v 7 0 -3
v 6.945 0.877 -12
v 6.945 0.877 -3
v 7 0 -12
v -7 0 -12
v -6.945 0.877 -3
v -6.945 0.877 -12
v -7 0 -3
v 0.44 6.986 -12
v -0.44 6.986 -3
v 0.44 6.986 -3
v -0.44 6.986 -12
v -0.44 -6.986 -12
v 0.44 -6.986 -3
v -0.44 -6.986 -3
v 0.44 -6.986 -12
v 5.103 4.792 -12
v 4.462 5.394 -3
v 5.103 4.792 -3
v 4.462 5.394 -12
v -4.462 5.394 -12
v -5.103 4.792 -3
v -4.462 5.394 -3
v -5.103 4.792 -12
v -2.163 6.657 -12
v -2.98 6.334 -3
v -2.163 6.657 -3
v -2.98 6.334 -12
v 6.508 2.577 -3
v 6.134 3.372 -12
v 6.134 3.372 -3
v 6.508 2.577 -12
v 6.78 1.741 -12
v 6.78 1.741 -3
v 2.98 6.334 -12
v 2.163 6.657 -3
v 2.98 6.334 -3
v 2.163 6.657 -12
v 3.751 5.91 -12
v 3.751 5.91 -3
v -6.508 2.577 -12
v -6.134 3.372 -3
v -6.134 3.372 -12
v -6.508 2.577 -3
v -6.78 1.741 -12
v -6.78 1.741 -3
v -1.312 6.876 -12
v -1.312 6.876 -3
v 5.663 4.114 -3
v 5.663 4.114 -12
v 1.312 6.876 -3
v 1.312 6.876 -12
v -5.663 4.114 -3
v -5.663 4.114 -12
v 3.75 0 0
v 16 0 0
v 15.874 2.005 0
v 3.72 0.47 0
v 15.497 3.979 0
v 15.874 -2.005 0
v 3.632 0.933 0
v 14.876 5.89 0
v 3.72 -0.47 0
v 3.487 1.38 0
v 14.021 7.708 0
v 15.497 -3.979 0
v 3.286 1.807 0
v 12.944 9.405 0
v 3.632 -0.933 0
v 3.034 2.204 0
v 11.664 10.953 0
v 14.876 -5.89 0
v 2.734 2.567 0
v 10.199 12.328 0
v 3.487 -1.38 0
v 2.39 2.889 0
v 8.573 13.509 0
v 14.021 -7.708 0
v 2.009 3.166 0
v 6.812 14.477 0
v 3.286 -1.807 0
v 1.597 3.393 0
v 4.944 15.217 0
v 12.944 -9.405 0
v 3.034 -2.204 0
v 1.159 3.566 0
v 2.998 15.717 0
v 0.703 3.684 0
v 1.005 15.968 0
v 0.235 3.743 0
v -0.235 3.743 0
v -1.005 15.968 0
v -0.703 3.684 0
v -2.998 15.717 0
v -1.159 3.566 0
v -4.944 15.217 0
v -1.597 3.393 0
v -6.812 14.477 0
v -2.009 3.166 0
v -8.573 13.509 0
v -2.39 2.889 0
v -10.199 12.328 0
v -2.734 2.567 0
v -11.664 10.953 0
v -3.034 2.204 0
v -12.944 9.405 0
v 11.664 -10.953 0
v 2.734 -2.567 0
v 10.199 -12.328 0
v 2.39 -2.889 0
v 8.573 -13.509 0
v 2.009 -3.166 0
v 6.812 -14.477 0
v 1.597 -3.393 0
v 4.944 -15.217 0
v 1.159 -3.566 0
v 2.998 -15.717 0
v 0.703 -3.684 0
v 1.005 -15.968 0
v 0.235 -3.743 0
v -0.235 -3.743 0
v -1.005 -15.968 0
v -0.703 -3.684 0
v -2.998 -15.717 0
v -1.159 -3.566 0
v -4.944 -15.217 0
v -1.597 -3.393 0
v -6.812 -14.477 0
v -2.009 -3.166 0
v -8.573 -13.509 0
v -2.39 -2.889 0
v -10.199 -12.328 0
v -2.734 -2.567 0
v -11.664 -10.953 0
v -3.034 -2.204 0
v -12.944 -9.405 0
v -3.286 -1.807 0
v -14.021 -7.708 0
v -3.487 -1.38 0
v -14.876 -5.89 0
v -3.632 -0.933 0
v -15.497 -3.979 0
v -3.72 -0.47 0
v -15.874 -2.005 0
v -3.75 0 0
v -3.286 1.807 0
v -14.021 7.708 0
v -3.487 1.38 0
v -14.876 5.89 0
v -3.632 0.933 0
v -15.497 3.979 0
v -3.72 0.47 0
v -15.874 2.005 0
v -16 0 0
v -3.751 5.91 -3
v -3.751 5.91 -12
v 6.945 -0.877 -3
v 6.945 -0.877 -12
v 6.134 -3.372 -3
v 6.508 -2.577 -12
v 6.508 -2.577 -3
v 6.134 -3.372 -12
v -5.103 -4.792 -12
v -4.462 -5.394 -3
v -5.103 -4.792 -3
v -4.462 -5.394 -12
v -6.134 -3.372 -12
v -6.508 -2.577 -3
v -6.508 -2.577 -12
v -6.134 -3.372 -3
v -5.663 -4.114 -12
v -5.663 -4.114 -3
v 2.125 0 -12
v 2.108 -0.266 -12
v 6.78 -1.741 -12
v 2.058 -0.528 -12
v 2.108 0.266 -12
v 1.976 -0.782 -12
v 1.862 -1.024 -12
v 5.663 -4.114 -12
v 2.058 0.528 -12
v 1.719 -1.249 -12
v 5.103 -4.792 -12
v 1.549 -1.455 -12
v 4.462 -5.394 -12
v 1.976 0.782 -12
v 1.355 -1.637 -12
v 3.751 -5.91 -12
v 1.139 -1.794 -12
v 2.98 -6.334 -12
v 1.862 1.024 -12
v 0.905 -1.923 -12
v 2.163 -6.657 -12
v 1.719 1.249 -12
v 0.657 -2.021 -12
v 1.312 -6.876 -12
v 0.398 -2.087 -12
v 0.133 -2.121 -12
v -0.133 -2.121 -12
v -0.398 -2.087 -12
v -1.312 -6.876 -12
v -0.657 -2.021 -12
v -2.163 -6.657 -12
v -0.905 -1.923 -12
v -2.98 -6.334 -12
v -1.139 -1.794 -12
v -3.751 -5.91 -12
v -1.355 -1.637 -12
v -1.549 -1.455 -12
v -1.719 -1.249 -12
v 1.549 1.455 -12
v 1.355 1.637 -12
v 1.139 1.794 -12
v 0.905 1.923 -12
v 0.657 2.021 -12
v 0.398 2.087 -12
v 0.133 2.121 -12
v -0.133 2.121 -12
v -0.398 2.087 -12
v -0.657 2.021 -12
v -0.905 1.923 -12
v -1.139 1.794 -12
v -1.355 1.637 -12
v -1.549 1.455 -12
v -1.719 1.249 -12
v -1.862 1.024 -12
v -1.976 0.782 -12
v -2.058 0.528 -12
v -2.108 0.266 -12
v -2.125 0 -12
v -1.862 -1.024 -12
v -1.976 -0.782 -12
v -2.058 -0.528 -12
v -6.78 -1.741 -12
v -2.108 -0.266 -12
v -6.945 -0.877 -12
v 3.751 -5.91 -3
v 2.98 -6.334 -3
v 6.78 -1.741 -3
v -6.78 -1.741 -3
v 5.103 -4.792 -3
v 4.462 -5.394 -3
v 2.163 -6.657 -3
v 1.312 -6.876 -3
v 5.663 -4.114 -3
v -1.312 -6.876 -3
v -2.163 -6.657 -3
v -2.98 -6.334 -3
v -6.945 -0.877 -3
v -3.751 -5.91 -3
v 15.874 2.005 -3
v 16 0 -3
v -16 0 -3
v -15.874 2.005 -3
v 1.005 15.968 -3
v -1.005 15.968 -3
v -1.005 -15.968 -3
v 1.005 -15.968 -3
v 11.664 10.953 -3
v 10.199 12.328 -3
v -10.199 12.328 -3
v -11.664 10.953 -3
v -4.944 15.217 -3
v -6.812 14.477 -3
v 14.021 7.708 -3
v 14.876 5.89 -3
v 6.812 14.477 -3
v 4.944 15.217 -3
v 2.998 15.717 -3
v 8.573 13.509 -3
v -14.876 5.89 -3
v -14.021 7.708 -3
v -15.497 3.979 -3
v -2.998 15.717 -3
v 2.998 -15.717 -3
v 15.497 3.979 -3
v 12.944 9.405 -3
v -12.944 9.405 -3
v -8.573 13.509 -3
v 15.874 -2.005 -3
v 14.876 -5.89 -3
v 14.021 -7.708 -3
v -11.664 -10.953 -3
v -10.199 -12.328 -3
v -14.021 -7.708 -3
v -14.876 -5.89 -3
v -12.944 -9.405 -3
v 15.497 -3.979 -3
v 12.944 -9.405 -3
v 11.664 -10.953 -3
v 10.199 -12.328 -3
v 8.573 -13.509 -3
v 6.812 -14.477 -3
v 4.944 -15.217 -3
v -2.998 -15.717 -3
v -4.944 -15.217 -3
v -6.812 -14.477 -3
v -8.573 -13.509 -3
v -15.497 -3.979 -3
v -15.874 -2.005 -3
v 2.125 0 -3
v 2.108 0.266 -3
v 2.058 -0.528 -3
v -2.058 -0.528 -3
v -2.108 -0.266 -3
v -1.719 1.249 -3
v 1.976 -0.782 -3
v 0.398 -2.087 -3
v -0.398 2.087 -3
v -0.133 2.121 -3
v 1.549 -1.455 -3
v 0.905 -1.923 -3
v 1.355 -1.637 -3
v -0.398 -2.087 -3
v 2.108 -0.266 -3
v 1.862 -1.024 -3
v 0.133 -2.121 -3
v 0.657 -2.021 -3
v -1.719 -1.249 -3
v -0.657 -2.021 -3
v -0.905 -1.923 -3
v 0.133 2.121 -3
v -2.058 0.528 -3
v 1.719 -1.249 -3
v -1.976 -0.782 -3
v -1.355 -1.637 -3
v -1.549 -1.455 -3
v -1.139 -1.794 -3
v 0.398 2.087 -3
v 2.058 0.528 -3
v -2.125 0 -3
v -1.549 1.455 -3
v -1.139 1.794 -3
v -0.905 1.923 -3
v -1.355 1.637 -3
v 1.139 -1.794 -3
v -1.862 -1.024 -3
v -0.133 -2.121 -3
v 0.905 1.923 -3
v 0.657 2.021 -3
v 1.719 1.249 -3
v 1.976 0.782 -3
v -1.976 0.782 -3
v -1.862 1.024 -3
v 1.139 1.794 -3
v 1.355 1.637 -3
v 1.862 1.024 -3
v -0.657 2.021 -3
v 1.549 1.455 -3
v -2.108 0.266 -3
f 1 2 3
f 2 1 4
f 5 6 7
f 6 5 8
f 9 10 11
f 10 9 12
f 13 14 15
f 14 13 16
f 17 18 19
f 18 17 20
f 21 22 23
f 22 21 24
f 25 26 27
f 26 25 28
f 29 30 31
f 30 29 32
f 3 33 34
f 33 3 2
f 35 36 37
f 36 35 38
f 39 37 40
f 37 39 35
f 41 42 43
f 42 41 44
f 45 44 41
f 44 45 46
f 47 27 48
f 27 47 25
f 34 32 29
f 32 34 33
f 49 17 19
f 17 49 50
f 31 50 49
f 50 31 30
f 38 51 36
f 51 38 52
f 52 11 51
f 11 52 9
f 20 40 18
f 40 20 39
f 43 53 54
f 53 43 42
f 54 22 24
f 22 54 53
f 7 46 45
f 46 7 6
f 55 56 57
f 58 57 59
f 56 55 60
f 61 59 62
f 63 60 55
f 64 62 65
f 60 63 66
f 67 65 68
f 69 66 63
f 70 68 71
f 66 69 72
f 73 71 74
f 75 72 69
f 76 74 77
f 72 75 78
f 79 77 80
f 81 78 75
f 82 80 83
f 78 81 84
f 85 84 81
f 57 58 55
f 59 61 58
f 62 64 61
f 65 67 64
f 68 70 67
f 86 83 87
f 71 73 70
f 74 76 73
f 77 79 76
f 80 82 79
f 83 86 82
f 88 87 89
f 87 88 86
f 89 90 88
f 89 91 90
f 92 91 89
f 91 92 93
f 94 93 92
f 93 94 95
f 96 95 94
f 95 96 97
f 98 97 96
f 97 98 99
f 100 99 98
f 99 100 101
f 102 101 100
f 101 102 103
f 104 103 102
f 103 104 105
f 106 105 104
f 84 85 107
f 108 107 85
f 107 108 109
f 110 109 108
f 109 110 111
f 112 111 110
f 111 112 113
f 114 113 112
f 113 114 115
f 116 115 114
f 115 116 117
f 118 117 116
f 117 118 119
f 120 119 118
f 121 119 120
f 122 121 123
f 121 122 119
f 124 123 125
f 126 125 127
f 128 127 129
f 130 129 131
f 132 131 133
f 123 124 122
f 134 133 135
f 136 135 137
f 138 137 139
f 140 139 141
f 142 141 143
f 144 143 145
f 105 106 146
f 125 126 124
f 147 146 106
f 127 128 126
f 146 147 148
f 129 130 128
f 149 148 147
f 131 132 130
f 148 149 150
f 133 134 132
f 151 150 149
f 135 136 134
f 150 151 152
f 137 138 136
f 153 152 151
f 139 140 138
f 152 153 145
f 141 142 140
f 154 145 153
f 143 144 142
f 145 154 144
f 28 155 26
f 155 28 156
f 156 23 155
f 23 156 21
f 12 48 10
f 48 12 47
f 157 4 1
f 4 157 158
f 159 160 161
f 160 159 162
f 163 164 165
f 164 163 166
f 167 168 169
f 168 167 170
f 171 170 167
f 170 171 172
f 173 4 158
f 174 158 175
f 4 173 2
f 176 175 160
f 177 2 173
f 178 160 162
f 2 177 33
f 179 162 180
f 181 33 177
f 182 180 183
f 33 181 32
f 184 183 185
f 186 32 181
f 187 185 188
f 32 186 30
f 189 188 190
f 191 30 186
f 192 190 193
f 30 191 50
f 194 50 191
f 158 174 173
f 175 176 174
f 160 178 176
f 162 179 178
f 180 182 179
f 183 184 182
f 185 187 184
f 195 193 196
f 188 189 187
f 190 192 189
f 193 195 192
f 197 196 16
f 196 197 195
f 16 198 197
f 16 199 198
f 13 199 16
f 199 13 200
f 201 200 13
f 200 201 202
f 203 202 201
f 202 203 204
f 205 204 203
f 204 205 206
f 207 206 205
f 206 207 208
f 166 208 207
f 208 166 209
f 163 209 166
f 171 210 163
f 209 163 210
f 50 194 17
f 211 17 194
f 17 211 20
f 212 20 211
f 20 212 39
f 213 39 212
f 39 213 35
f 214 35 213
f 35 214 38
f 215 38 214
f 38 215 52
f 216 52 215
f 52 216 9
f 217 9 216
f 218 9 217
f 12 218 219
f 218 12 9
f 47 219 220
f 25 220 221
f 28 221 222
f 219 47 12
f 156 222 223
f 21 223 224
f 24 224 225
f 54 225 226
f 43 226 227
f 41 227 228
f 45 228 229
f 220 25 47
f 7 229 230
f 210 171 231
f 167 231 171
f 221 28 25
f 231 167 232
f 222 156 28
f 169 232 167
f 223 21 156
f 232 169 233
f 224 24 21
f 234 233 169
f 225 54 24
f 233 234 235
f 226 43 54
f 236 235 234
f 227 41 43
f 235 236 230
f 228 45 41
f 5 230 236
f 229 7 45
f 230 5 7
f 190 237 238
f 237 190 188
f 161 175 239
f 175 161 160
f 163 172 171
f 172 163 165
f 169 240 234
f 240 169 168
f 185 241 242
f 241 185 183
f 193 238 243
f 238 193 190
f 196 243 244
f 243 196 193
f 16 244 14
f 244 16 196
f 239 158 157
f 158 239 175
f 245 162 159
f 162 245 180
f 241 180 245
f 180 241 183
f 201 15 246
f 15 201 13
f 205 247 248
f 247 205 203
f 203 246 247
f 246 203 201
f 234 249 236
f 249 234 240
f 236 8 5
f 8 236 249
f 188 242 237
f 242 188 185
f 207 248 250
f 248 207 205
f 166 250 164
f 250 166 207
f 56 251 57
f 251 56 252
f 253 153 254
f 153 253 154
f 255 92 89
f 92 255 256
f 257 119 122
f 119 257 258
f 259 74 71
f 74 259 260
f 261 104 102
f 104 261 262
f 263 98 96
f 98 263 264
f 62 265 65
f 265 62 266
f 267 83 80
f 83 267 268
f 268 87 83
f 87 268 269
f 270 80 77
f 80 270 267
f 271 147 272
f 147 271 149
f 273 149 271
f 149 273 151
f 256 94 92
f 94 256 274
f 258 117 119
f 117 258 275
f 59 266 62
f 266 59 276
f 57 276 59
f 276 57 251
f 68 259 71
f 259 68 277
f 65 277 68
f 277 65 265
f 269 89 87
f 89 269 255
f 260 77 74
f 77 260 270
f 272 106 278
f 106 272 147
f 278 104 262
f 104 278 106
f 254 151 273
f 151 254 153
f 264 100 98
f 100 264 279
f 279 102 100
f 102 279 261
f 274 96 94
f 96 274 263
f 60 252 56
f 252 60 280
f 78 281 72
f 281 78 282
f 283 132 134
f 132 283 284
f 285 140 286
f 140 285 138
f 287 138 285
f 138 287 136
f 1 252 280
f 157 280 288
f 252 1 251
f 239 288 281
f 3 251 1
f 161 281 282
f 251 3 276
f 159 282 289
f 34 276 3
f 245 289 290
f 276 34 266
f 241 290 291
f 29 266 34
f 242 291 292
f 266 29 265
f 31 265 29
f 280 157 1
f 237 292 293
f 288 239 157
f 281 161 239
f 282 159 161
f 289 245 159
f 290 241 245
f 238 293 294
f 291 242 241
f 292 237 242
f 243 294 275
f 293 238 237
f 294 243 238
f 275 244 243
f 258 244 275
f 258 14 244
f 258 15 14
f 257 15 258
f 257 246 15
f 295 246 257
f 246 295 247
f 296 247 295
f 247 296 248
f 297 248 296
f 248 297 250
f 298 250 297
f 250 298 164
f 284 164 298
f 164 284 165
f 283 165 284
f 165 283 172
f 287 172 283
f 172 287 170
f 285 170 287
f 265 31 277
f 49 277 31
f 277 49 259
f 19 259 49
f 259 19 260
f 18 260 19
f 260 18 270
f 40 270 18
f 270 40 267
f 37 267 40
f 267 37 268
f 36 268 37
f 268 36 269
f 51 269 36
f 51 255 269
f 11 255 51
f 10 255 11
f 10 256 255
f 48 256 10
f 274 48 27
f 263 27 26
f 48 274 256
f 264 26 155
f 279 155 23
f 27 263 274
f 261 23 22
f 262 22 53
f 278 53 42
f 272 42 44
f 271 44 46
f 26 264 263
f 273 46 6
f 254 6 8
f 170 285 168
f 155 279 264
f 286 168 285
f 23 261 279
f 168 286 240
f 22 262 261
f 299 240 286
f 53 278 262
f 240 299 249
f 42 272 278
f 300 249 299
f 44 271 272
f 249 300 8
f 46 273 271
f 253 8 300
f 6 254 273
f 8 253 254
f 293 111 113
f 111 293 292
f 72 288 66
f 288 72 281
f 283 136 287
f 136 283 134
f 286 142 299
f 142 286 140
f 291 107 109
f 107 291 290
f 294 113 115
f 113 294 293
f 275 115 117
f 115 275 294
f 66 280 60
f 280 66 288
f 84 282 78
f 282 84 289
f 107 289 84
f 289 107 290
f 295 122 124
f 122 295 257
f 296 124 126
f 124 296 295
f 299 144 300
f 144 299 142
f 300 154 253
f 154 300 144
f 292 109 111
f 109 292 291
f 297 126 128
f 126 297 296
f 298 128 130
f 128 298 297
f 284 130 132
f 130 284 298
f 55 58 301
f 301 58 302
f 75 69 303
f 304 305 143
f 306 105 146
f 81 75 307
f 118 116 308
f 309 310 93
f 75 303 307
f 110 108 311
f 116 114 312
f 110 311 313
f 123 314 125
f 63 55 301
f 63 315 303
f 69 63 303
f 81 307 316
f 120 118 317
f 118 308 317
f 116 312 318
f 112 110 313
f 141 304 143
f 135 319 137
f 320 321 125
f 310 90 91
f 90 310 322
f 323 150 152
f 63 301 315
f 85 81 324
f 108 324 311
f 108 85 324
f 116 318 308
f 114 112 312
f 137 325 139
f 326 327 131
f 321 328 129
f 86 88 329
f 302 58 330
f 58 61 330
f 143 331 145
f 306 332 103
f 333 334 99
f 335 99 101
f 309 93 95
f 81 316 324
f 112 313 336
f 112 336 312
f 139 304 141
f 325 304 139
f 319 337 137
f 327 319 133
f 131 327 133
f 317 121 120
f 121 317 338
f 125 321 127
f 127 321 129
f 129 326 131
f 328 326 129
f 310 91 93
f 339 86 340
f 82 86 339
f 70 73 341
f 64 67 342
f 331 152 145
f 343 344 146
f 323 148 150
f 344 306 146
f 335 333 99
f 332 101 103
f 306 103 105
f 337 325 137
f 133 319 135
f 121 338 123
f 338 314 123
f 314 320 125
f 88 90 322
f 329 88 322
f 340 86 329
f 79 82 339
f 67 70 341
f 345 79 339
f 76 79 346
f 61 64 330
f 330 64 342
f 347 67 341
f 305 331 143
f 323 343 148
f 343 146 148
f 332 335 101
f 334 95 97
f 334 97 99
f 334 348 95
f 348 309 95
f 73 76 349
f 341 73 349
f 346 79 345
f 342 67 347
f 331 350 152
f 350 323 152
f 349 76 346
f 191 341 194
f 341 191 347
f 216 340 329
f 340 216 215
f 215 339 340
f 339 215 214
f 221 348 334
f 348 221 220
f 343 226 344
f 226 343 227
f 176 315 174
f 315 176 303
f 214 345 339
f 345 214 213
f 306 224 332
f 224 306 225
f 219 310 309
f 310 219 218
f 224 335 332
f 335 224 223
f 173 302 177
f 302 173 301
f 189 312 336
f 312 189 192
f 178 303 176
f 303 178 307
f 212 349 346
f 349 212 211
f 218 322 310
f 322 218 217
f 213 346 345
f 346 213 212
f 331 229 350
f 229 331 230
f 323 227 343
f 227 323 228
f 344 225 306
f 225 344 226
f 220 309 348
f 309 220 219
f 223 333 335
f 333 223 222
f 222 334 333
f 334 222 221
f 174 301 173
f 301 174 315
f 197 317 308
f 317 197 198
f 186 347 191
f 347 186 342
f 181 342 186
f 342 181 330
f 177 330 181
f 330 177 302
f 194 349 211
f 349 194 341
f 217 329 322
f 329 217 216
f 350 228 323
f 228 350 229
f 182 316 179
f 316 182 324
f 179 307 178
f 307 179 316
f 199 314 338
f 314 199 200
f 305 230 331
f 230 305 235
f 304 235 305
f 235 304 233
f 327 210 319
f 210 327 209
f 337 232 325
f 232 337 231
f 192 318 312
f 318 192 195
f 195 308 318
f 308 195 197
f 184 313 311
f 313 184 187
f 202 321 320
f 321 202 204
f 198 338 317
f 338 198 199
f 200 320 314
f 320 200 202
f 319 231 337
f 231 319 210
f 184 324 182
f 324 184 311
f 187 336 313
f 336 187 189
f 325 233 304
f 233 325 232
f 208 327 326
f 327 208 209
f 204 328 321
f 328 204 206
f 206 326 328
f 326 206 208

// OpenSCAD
$fn = 50;


difference() {
	union() {
		translate(v = [0, 0, -12.0000000000]) {
			cylinder(h = 12, r = 7.0000000000);
		}
		translate(v = [0, 0, -3.0000000000]) {
			cylinder(h = 3, r = 16.0000000000);
		}
	}
	union() {
		translate(v = [0, 0, 0]) {
			rotate(a = [0, 0, 0]) {
				difference() {
					union() {
						#translate(v = [0, 0, -12.0000000000]) {
							cylinder(h = 12, r = 2.0000000000);
						}
						#translate(v = [0, 0, -3]) {
							cylinder(h = 3, r1 = 2.1250000000, r2 = 3.7500000000);
						}
						#translate(v = [0, 0, -12.0000000000]) {
							cylinder(h = 12, r = 2.1250000000);
						}
						#translate(v = [0, 0, -12.0000000000]) {
							cylinder(h = 12, r = 2.0000000000);
						}
					}
					union();
				}
			}
		}
	}
}
